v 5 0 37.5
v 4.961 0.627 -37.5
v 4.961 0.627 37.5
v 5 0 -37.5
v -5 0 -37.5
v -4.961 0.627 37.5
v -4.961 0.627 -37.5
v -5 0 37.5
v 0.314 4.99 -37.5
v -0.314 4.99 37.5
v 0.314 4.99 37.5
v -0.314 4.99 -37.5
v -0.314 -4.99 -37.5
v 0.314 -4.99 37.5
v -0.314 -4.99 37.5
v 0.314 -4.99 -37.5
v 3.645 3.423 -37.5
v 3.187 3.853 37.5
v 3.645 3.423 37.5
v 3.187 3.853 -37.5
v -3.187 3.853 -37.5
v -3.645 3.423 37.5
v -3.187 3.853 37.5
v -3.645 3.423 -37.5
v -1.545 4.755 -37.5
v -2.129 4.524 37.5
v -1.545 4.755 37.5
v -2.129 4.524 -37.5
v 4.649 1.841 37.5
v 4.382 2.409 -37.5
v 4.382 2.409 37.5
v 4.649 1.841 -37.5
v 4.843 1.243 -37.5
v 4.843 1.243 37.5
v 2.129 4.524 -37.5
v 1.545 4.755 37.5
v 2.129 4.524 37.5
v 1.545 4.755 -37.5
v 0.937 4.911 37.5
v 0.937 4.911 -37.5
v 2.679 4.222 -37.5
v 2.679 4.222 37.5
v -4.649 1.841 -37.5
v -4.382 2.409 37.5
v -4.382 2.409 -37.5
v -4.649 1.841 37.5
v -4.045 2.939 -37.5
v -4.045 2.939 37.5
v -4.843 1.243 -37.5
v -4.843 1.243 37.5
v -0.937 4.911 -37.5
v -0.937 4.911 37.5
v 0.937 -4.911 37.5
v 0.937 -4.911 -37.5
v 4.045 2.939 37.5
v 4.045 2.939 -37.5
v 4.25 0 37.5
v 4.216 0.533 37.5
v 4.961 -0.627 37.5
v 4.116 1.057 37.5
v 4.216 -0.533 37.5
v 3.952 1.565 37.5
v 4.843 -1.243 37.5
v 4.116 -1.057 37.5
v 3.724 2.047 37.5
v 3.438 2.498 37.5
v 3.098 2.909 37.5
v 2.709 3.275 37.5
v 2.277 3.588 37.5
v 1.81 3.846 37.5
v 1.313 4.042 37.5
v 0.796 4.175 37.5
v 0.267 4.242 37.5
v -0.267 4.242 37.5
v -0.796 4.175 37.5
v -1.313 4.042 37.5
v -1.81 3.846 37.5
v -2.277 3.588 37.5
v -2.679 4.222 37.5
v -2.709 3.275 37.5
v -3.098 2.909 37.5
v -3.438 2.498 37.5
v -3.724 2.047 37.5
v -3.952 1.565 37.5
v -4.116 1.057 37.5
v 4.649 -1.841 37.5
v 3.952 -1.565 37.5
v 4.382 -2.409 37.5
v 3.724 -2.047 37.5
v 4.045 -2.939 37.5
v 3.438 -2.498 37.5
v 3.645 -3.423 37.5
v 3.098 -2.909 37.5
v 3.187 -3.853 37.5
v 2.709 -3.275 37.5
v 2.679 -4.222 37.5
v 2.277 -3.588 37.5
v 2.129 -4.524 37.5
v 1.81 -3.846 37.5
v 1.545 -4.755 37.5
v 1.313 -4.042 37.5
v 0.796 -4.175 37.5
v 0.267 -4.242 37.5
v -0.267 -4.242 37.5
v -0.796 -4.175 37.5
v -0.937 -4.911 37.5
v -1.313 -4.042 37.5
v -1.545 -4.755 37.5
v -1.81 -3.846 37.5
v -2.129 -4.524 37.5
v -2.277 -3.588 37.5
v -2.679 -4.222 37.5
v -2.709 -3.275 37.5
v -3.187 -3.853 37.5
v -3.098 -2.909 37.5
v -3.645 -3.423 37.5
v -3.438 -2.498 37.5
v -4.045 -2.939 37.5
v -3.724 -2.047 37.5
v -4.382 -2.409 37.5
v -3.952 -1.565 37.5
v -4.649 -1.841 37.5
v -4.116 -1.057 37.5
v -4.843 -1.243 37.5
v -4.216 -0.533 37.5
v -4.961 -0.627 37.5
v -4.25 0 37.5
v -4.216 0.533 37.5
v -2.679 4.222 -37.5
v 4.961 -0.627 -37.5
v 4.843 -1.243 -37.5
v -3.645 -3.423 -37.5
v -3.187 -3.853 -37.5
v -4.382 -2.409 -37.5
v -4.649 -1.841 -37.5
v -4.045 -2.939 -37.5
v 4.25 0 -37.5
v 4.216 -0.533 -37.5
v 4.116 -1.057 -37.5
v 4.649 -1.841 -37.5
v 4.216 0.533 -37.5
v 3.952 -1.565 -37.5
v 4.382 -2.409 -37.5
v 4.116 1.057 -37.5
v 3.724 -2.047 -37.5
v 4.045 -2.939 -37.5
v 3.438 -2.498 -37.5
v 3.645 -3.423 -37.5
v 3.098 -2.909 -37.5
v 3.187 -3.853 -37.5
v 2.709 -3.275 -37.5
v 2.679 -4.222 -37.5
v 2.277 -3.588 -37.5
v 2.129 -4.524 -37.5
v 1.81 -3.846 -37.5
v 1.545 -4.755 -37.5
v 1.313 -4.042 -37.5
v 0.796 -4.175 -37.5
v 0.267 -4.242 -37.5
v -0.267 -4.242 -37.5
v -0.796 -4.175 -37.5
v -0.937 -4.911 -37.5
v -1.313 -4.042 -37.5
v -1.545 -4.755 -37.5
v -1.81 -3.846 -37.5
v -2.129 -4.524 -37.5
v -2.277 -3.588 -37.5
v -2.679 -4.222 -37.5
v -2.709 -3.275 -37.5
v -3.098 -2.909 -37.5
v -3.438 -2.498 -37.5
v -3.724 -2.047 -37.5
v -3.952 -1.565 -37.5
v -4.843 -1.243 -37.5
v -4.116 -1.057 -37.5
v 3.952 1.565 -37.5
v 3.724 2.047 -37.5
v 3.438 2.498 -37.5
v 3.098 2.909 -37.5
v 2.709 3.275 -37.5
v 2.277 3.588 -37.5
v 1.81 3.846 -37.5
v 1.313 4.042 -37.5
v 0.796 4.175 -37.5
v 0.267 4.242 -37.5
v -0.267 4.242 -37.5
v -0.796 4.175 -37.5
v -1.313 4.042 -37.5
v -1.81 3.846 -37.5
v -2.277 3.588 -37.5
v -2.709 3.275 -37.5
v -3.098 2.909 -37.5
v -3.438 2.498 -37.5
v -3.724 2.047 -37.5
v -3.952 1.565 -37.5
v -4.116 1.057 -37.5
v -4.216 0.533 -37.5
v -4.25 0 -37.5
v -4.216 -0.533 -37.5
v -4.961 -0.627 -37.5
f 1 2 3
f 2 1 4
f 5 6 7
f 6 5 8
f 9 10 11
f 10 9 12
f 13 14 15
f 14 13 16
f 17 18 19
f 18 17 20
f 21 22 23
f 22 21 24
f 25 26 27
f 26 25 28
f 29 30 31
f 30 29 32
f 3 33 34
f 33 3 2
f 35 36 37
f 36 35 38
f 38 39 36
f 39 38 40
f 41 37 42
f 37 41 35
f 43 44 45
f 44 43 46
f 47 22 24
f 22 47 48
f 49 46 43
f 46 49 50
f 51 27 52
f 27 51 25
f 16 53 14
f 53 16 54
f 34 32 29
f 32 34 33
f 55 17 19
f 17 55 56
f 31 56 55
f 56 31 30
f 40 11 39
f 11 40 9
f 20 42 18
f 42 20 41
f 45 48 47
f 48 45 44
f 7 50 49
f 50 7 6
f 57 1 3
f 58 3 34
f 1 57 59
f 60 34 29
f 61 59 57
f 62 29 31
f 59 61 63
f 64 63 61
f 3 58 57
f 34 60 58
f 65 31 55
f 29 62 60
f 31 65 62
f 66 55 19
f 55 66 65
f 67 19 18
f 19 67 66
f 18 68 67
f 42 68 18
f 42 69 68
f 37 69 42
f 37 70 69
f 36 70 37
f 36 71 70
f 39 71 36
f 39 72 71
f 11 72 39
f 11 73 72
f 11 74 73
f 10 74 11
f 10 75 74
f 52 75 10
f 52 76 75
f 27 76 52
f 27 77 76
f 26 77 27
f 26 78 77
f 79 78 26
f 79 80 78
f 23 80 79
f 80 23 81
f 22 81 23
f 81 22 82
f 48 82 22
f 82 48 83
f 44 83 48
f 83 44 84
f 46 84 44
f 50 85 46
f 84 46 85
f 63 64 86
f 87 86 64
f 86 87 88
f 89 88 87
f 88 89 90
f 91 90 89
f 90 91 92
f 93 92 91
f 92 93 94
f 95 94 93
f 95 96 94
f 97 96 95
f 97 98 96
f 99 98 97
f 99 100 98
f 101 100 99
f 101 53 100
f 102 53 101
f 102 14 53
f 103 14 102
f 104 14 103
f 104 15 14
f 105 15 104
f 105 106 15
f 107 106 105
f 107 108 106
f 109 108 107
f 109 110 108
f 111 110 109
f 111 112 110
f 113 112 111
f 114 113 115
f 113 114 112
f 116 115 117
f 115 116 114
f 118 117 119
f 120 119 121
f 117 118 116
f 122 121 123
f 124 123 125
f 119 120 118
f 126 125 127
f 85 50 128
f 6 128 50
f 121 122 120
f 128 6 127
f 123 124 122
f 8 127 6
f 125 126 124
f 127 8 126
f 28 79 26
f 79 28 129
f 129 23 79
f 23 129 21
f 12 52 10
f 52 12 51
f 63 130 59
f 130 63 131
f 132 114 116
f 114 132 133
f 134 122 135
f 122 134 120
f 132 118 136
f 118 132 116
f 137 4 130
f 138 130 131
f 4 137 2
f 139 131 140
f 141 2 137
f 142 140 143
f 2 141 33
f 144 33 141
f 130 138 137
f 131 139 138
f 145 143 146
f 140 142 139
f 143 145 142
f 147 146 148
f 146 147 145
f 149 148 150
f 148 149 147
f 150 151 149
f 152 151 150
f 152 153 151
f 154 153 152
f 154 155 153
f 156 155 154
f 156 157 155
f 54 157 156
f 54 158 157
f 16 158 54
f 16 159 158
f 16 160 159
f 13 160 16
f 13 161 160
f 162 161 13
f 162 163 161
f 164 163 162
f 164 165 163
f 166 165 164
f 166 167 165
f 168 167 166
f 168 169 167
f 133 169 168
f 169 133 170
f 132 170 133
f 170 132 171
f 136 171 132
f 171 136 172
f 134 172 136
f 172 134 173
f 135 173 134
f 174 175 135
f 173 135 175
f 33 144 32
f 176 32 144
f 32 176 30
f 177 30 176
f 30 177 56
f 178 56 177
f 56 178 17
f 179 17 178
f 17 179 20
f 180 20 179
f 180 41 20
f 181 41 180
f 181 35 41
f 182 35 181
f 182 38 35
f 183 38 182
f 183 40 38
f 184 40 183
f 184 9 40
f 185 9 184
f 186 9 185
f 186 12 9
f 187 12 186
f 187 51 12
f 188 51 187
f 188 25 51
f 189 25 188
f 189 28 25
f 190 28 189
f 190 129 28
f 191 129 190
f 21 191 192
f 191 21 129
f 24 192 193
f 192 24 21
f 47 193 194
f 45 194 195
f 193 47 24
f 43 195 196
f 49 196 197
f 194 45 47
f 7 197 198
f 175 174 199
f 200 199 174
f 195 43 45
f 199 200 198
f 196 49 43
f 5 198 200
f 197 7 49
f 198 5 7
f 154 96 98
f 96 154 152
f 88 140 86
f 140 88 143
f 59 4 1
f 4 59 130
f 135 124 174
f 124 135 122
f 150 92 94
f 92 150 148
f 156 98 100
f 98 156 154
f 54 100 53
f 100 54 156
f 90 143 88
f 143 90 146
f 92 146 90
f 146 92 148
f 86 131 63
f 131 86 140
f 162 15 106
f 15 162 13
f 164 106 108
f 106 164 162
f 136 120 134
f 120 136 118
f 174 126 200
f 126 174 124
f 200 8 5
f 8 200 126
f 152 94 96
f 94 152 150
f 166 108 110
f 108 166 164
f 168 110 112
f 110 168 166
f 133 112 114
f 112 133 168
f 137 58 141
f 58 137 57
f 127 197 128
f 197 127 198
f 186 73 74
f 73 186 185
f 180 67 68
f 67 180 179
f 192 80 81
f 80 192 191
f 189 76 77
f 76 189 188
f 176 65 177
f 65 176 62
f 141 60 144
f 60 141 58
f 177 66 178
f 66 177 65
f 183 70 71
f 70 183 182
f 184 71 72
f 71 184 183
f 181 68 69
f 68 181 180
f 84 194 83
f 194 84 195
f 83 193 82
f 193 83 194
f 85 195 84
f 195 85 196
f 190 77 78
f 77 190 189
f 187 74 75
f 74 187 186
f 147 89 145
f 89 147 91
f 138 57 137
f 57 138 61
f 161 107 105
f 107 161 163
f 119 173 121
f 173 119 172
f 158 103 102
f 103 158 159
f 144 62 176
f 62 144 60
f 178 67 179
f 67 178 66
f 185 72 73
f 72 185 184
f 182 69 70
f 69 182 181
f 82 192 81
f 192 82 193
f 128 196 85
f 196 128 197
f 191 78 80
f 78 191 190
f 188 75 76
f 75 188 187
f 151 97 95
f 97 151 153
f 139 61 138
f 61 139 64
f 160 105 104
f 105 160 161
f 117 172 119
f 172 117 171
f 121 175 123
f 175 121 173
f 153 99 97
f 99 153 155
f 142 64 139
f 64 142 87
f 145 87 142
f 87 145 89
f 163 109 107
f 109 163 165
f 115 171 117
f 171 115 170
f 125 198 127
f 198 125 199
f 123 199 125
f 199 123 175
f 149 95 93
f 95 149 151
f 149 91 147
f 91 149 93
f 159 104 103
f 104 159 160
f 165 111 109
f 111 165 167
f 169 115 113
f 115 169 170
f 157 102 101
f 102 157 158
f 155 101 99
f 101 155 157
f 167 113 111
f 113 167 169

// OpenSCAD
$fn = 50;


difference() {
	union() {
		translate(v = [0, 0, -37.5000000000]) {
			cylinder(h = 75, r = 5.0000000000);
		}
	}
	union() {
		translate(v = [0, 0, -100.0000000000]) {
			cylinder(h = 200, r = 4.2500000000);
		}
	}
}
